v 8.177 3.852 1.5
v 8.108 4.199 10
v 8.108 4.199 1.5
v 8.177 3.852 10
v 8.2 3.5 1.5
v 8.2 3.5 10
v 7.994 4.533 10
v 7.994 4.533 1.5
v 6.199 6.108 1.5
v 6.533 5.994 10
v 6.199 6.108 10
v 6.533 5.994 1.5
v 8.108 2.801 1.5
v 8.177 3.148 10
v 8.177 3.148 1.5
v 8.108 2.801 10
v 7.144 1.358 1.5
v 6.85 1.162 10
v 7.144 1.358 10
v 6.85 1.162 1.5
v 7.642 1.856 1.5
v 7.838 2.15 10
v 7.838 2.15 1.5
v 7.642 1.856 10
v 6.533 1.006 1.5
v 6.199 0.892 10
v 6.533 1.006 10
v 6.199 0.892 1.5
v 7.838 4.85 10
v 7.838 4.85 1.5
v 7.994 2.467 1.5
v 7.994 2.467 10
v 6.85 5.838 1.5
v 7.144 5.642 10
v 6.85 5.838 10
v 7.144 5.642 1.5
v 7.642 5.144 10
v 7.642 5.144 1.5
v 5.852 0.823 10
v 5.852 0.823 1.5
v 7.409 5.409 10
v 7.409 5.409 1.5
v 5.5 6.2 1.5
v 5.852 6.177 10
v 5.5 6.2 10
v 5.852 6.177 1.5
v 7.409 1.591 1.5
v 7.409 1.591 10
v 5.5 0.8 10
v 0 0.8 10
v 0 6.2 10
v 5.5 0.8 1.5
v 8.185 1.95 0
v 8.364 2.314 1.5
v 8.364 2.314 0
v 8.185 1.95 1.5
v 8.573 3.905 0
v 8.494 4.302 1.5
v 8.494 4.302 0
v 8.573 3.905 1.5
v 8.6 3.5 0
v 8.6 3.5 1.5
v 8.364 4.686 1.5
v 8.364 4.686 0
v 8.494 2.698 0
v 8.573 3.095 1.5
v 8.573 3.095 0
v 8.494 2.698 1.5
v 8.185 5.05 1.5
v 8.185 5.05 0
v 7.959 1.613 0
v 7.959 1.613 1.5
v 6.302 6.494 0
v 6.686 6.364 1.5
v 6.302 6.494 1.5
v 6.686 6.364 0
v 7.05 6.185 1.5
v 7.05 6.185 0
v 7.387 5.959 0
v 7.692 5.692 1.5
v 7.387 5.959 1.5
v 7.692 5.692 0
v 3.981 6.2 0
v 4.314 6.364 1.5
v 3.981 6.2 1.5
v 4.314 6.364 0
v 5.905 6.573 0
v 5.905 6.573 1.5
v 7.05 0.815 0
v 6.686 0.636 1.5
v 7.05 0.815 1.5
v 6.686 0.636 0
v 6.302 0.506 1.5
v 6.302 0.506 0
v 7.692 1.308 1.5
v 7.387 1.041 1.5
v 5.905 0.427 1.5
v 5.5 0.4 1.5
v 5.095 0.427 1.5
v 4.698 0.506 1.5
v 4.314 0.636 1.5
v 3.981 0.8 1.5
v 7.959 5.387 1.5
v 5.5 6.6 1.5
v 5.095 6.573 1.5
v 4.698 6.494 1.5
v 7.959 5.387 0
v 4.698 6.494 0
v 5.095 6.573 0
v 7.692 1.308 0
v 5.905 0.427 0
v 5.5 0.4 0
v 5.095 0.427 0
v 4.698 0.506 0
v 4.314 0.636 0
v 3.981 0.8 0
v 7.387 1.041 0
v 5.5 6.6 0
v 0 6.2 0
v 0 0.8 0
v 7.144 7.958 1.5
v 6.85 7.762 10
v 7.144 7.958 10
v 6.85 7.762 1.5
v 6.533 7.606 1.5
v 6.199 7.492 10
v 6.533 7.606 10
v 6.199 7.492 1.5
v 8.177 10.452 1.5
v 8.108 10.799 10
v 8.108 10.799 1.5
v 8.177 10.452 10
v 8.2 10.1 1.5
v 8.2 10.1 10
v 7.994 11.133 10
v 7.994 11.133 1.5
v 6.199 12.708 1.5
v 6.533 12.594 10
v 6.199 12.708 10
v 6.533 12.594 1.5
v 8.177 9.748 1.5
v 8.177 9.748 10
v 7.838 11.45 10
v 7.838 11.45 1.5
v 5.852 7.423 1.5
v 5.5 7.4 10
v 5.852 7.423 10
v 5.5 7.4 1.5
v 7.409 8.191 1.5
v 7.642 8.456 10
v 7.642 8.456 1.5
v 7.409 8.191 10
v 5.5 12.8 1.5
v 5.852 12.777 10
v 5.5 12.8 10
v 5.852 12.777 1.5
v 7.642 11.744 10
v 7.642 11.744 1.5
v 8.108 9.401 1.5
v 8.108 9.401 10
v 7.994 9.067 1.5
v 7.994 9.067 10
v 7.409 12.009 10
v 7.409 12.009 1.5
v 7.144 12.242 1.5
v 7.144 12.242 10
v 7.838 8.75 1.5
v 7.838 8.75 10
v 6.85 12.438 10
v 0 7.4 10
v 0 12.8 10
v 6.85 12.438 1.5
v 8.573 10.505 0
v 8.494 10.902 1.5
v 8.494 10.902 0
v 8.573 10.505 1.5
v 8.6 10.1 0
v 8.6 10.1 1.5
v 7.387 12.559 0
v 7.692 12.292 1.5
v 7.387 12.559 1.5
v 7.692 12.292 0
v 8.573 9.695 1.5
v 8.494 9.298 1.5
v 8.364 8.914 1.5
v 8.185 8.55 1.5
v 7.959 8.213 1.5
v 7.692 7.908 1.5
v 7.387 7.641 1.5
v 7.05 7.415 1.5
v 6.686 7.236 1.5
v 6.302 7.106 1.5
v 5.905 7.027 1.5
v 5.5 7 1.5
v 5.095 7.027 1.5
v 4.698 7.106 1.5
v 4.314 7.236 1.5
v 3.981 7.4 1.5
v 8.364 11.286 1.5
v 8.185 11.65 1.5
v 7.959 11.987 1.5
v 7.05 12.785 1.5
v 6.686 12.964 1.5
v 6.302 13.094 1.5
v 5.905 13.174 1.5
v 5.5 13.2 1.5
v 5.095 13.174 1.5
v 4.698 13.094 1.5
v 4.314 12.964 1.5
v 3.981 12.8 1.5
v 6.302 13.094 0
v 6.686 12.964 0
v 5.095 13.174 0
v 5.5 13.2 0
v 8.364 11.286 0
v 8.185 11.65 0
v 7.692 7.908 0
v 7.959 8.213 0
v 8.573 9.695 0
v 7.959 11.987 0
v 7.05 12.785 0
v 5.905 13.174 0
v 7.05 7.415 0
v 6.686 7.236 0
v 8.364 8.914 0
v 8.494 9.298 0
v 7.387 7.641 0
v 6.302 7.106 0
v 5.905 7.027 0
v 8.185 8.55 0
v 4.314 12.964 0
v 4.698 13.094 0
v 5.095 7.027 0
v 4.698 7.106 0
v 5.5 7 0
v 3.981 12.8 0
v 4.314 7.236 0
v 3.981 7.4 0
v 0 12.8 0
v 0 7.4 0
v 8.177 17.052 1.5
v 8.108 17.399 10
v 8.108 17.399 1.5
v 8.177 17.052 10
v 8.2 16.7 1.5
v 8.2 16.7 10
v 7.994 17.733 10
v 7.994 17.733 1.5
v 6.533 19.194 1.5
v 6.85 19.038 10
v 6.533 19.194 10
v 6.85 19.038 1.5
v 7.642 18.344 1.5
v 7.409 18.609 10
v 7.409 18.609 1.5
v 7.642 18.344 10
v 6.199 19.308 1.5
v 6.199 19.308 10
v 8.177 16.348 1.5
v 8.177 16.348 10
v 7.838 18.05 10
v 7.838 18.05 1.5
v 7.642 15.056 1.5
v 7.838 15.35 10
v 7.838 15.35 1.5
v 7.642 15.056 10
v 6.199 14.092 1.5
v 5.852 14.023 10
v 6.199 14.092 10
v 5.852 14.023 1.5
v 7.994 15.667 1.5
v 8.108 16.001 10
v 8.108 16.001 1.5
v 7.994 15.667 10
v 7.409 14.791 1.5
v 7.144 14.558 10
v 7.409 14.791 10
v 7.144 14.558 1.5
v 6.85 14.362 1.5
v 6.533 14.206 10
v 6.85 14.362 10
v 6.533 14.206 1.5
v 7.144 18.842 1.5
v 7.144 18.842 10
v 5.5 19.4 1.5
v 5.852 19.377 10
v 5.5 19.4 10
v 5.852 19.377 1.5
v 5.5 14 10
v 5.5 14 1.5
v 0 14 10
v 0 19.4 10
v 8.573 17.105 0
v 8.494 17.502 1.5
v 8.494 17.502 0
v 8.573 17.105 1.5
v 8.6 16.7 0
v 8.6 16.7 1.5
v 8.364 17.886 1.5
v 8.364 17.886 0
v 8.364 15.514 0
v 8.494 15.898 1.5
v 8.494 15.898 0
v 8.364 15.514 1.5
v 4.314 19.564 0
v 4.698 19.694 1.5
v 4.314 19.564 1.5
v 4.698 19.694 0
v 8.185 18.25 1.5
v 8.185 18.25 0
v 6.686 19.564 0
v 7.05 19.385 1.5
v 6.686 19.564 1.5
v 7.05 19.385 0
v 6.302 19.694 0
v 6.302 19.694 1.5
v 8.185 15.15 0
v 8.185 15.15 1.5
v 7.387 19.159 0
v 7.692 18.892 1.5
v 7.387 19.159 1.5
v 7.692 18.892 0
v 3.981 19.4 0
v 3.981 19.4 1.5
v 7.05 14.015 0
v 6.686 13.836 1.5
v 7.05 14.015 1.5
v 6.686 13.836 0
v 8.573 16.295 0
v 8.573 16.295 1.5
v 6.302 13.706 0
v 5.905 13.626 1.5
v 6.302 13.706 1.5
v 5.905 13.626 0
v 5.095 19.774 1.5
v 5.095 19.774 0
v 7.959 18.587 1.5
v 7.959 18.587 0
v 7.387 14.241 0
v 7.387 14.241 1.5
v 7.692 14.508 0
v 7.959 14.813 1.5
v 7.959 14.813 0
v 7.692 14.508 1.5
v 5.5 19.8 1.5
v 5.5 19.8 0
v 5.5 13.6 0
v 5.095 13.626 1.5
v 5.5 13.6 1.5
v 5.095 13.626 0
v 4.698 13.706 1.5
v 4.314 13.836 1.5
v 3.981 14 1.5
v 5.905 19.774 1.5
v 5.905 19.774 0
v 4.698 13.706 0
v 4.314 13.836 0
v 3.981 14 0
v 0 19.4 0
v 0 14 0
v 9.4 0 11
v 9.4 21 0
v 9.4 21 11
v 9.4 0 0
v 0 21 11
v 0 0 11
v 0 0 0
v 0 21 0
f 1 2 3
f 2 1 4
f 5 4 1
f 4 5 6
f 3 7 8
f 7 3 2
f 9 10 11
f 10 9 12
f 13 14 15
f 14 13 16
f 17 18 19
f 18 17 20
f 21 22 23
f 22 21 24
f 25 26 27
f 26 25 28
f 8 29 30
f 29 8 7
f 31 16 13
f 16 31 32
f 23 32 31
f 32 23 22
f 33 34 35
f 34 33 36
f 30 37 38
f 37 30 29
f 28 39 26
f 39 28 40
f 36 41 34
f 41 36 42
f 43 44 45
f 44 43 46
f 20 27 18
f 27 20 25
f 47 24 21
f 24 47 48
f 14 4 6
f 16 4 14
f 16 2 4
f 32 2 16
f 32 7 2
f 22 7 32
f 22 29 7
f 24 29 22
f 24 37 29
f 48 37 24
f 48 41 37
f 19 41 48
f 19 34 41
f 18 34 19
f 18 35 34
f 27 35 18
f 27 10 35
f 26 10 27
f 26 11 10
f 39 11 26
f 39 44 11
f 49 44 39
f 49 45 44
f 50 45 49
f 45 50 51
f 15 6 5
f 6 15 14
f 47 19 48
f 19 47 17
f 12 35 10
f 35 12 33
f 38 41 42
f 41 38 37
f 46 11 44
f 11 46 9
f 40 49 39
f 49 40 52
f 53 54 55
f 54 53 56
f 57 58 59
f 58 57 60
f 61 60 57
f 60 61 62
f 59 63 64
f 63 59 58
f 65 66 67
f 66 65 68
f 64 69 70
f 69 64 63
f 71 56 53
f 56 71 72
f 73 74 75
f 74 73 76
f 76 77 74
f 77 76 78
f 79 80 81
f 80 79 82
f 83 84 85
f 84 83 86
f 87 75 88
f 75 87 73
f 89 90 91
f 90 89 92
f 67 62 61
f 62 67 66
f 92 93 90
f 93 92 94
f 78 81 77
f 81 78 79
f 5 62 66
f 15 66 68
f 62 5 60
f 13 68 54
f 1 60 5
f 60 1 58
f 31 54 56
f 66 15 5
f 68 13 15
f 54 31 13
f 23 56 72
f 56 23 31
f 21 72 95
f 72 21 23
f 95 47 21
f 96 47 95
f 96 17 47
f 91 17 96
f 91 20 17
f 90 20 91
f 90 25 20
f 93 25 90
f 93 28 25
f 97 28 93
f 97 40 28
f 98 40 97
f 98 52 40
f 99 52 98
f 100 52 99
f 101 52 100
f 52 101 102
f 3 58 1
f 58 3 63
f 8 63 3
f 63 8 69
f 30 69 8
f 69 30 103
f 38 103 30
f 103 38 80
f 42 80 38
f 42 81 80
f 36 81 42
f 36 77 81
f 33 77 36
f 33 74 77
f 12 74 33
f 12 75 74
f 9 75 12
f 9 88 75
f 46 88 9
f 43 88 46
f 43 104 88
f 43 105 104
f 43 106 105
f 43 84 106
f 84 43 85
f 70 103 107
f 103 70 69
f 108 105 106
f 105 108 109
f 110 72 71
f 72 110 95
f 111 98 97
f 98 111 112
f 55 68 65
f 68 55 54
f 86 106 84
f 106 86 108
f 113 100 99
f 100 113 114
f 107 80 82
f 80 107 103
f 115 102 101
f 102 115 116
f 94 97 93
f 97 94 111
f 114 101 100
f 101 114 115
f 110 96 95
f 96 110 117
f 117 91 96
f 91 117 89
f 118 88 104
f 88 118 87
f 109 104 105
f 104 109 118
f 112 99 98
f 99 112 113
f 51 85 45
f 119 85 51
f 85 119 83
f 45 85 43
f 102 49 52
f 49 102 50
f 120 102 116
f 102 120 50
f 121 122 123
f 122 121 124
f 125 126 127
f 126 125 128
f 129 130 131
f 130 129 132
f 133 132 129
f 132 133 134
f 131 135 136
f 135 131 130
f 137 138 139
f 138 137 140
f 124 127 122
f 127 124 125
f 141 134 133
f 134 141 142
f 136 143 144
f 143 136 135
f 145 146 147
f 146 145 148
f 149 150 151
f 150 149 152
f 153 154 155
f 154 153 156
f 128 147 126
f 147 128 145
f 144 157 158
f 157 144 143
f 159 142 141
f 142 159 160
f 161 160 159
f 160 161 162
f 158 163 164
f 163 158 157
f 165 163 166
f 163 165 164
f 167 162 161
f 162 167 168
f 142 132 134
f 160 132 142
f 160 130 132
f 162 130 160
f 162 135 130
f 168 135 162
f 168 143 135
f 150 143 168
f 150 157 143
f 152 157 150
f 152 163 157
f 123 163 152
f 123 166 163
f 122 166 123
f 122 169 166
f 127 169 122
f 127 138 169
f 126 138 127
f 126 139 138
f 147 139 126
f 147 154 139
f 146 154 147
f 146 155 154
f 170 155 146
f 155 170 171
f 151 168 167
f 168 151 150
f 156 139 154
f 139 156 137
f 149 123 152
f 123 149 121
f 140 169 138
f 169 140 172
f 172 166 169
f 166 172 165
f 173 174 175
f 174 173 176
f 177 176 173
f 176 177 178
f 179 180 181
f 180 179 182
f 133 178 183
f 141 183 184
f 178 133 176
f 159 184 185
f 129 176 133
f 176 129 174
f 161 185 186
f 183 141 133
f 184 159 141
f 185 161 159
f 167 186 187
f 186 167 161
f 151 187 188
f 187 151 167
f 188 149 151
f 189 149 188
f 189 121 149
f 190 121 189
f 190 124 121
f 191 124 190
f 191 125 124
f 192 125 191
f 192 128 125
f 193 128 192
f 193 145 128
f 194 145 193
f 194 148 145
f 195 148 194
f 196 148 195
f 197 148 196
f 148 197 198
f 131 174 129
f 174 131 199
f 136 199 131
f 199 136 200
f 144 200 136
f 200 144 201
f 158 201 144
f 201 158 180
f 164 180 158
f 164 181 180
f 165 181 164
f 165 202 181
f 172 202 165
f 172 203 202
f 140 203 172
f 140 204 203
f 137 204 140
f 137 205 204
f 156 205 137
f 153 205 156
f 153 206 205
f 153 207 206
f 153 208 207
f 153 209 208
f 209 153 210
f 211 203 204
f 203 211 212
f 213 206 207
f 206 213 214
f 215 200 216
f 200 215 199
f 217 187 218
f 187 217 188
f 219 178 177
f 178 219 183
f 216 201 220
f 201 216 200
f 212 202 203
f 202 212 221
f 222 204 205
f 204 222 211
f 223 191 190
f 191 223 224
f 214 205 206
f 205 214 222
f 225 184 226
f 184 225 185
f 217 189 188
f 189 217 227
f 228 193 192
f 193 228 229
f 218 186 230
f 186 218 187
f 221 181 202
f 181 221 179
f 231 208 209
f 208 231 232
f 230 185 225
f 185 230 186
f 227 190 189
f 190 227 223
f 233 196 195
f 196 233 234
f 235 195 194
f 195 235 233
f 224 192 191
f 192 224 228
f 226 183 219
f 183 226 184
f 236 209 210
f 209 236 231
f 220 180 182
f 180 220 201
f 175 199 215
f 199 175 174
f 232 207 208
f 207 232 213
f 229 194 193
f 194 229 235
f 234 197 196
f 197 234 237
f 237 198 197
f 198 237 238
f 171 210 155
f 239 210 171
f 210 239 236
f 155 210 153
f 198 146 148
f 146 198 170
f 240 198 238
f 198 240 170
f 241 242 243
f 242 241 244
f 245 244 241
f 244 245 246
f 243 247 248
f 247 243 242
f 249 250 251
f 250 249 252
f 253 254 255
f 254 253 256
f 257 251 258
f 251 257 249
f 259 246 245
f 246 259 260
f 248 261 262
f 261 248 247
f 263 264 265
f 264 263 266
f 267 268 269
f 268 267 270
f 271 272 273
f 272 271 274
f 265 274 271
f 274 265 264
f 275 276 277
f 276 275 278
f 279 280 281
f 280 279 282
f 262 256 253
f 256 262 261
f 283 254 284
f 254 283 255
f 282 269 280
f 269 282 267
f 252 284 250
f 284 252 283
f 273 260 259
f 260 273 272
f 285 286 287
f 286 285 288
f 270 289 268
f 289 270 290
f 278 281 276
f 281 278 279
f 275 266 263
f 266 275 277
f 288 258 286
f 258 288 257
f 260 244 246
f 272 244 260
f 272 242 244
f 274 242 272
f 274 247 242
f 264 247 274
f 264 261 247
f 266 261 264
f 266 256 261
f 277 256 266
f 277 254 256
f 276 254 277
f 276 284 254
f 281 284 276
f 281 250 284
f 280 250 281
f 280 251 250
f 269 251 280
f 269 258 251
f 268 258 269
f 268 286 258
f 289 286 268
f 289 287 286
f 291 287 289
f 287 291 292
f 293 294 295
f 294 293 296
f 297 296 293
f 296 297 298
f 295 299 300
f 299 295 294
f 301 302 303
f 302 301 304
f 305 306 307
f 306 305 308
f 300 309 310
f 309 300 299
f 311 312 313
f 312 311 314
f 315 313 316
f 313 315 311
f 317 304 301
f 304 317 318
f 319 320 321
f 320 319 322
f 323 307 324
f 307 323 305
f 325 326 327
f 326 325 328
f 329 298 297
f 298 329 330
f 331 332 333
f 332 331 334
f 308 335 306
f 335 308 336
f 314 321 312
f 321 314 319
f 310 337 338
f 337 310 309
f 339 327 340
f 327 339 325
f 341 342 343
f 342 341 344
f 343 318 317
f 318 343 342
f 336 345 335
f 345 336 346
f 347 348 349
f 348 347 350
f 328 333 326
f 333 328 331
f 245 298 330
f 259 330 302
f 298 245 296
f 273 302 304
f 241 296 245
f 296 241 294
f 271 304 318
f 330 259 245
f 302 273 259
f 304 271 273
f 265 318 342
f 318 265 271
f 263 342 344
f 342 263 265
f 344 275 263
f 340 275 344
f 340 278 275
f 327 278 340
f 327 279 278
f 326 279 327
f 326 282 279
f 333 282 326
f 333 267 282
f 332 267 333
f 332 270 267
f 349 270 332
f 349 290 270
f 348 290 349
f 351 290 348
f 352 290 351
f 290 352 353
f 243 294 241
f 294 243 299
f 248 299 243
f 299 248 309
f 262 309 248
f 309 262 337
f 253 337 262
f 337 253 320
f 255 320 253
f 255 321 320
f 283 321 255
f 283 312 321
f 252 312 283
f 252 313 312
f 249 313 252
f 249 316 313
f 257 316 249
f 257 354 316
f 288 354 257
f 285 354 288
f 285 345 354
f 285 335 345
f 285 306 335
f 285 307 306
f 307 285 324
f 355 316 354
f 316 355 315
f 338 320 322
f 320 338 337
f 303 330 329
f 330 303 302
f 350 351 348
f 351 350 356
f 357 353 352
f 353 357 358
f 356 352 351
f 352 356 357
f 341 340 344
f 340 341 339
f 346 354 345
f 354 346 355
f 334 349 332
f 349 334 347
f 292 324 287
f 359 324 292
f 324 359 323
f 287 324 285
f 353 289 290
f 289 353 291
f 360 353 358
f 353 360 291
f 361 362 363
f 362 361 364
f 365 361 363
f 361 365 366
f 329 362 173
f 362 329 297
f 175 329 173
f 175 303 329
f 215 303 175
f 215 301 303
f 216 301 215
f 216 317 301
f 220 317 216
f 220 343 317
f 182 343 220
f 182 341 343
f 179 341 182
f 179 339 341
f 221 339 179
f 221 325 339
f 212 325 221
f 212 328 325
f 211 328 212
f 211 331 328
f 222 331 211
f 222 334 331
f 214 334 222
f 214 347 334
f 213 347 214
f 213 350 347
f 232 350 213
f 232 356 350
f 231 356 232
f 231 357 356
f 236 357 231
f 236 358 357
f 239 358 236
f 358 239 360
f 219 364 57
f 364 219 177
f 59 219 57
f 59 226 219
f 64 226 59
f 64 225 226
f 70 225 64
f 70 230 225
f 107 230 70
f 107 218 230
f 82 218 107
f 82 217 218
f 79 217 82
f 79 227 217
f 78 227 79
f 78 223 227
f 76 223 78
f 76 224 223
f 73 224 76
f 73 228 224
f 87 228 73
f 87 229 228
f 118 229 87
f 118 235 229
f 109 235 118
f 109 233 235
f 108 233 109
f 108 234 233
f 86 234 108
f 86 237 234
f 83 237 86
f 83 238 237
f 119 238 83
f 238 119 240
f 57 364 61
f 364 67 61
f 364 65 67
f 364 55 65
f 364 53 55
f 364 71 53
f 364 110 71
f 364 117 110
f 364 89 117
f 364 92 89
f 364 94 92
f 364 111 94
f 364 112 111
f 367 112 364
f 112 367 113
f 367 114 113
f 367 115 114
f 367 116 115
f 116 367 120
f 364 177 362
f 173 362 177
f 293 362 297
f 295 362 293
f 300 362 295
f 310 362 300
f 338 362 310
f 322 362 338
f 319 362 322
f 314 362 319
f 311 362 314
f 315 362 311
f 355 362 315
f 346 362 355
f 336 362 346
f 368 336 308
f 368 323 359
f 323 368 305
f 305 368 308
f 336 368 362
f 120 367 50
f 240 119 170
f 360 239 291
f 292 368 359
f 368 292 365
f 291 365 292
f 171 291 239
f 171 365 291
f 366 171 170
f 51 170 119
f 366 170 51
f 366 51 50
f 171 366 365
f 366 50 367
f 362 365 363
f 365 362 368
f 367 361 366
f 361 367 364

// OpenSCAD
// led_bezel.scad - a comb that keeps the light of the three front LEDs of the AiO v4.5 apart.
// Part of renatorgr/Boards. Written 2026 by Claude (Anthropic) for renatorgr.
// Licence: CERN-OHL-S v2 or later, as the AgOpenGPS boards it fits. WITHOUT ANY WARRANTY.
//
// The AiO v4.5 Micro and Standard carry three two-colour 5 mm LEDs (PWR/ETH, GPS/RTK, AS-ACT) standing
// upright at the board edge, 6.6 mm apart, so only 1.6 mm separates one dome from the next. In an
// enclosure with light windows on the front panel (e.g. the RayCorp case), the light reaches each window
// from the side of the domes and spreads to the neighbouring windows, so an orange LED next to a red one
// cannot be told apart. This comb slides down over the three LEDs: each LED gets its own cell, closed on
// the top, the back and the sides, open only towards the panel, and the dividers reach the panel.
// Print it in black (opaque) filament.
//
// Measurements from the AiO v4.5 pick-and-place files (AgOpenGPS-Official/Boards): LED pitch 6.6 mm,
// LED DY-339URUYGW/SN (5 mm dome, 5.8 mm flange), LED centres 3.05 mm (Micro) / 3.3 mm (Standard) from
// the board edge; on the Micro the RJ45 shield is about 1 mm from the last LED. Change the numbers below
// to fit your board and panel.

pitch          = 6.6;    // centre to centre of the LEDs (mm)
hole           = 5.4;    // cell diameter for a 5 mm dome; 5.6 if the print comes out tight
flange_d       = 6.2;    // counterbore at the bottom for the LED's base flange (5.8 mm)
flange_h       = 1.5;    // height of that counterbore
led_h          = 10;     // top of the domes above the board (mm): the cells are this deep
roof           = 1;      // closed top, this thick (0 = open top)
back_wall      = 1.2;    // wall behind the LEDs (towards the inside of the board)
end_wall_left  = 1.6;    // wall at the PWR end
end_wall_right = 0.8;    // wall at the AS-ACT end (the RJ45 is only 1 mm away on the Micro)
front          = 5.5;    // from the LED centres to the front face, towards the panel (mm): the board edge
                         // is 3.05 mm from the centres on the Micro, so 5.5 reaches 2.5 mm past the edge.
                         // Measure the gap between the board edge and the panel and set this so the
                         // dividers just touch the panel.
n              = 3;
$fn = 48;

width  = (n - 1) * pitch + hole + end_wall_left + end_wall_right;
depth  = front + hole / 2 + back_wall;          // along the LED-to-panel direction
height = led_h + roof;
cx     = front;                                  // LED centre line, from the front face

module body() { cube([depth, width, height]); }

module cells() {
    for (i = [0 : n - 1]) {
        y = end_wall_right + hole / 2 + i * pitch;
        // the round cell around the dome, from the bottom up to the roof
        translate([cx, y, -1]) cylinder(d = hole, h = led_h + 1);
        // the counterbore for the base flange
        translate([cx, y, -1]) cylinder(d = flange_d, h = flange_h + 1);
        // the opening towards the panel, as wide as the cell, full height under the roof
        translate([-1, y - hole / 2, -1]) cube([cx + 1, hole, led_h + 1]);
    }
}

difference() { body(); cells(); }
